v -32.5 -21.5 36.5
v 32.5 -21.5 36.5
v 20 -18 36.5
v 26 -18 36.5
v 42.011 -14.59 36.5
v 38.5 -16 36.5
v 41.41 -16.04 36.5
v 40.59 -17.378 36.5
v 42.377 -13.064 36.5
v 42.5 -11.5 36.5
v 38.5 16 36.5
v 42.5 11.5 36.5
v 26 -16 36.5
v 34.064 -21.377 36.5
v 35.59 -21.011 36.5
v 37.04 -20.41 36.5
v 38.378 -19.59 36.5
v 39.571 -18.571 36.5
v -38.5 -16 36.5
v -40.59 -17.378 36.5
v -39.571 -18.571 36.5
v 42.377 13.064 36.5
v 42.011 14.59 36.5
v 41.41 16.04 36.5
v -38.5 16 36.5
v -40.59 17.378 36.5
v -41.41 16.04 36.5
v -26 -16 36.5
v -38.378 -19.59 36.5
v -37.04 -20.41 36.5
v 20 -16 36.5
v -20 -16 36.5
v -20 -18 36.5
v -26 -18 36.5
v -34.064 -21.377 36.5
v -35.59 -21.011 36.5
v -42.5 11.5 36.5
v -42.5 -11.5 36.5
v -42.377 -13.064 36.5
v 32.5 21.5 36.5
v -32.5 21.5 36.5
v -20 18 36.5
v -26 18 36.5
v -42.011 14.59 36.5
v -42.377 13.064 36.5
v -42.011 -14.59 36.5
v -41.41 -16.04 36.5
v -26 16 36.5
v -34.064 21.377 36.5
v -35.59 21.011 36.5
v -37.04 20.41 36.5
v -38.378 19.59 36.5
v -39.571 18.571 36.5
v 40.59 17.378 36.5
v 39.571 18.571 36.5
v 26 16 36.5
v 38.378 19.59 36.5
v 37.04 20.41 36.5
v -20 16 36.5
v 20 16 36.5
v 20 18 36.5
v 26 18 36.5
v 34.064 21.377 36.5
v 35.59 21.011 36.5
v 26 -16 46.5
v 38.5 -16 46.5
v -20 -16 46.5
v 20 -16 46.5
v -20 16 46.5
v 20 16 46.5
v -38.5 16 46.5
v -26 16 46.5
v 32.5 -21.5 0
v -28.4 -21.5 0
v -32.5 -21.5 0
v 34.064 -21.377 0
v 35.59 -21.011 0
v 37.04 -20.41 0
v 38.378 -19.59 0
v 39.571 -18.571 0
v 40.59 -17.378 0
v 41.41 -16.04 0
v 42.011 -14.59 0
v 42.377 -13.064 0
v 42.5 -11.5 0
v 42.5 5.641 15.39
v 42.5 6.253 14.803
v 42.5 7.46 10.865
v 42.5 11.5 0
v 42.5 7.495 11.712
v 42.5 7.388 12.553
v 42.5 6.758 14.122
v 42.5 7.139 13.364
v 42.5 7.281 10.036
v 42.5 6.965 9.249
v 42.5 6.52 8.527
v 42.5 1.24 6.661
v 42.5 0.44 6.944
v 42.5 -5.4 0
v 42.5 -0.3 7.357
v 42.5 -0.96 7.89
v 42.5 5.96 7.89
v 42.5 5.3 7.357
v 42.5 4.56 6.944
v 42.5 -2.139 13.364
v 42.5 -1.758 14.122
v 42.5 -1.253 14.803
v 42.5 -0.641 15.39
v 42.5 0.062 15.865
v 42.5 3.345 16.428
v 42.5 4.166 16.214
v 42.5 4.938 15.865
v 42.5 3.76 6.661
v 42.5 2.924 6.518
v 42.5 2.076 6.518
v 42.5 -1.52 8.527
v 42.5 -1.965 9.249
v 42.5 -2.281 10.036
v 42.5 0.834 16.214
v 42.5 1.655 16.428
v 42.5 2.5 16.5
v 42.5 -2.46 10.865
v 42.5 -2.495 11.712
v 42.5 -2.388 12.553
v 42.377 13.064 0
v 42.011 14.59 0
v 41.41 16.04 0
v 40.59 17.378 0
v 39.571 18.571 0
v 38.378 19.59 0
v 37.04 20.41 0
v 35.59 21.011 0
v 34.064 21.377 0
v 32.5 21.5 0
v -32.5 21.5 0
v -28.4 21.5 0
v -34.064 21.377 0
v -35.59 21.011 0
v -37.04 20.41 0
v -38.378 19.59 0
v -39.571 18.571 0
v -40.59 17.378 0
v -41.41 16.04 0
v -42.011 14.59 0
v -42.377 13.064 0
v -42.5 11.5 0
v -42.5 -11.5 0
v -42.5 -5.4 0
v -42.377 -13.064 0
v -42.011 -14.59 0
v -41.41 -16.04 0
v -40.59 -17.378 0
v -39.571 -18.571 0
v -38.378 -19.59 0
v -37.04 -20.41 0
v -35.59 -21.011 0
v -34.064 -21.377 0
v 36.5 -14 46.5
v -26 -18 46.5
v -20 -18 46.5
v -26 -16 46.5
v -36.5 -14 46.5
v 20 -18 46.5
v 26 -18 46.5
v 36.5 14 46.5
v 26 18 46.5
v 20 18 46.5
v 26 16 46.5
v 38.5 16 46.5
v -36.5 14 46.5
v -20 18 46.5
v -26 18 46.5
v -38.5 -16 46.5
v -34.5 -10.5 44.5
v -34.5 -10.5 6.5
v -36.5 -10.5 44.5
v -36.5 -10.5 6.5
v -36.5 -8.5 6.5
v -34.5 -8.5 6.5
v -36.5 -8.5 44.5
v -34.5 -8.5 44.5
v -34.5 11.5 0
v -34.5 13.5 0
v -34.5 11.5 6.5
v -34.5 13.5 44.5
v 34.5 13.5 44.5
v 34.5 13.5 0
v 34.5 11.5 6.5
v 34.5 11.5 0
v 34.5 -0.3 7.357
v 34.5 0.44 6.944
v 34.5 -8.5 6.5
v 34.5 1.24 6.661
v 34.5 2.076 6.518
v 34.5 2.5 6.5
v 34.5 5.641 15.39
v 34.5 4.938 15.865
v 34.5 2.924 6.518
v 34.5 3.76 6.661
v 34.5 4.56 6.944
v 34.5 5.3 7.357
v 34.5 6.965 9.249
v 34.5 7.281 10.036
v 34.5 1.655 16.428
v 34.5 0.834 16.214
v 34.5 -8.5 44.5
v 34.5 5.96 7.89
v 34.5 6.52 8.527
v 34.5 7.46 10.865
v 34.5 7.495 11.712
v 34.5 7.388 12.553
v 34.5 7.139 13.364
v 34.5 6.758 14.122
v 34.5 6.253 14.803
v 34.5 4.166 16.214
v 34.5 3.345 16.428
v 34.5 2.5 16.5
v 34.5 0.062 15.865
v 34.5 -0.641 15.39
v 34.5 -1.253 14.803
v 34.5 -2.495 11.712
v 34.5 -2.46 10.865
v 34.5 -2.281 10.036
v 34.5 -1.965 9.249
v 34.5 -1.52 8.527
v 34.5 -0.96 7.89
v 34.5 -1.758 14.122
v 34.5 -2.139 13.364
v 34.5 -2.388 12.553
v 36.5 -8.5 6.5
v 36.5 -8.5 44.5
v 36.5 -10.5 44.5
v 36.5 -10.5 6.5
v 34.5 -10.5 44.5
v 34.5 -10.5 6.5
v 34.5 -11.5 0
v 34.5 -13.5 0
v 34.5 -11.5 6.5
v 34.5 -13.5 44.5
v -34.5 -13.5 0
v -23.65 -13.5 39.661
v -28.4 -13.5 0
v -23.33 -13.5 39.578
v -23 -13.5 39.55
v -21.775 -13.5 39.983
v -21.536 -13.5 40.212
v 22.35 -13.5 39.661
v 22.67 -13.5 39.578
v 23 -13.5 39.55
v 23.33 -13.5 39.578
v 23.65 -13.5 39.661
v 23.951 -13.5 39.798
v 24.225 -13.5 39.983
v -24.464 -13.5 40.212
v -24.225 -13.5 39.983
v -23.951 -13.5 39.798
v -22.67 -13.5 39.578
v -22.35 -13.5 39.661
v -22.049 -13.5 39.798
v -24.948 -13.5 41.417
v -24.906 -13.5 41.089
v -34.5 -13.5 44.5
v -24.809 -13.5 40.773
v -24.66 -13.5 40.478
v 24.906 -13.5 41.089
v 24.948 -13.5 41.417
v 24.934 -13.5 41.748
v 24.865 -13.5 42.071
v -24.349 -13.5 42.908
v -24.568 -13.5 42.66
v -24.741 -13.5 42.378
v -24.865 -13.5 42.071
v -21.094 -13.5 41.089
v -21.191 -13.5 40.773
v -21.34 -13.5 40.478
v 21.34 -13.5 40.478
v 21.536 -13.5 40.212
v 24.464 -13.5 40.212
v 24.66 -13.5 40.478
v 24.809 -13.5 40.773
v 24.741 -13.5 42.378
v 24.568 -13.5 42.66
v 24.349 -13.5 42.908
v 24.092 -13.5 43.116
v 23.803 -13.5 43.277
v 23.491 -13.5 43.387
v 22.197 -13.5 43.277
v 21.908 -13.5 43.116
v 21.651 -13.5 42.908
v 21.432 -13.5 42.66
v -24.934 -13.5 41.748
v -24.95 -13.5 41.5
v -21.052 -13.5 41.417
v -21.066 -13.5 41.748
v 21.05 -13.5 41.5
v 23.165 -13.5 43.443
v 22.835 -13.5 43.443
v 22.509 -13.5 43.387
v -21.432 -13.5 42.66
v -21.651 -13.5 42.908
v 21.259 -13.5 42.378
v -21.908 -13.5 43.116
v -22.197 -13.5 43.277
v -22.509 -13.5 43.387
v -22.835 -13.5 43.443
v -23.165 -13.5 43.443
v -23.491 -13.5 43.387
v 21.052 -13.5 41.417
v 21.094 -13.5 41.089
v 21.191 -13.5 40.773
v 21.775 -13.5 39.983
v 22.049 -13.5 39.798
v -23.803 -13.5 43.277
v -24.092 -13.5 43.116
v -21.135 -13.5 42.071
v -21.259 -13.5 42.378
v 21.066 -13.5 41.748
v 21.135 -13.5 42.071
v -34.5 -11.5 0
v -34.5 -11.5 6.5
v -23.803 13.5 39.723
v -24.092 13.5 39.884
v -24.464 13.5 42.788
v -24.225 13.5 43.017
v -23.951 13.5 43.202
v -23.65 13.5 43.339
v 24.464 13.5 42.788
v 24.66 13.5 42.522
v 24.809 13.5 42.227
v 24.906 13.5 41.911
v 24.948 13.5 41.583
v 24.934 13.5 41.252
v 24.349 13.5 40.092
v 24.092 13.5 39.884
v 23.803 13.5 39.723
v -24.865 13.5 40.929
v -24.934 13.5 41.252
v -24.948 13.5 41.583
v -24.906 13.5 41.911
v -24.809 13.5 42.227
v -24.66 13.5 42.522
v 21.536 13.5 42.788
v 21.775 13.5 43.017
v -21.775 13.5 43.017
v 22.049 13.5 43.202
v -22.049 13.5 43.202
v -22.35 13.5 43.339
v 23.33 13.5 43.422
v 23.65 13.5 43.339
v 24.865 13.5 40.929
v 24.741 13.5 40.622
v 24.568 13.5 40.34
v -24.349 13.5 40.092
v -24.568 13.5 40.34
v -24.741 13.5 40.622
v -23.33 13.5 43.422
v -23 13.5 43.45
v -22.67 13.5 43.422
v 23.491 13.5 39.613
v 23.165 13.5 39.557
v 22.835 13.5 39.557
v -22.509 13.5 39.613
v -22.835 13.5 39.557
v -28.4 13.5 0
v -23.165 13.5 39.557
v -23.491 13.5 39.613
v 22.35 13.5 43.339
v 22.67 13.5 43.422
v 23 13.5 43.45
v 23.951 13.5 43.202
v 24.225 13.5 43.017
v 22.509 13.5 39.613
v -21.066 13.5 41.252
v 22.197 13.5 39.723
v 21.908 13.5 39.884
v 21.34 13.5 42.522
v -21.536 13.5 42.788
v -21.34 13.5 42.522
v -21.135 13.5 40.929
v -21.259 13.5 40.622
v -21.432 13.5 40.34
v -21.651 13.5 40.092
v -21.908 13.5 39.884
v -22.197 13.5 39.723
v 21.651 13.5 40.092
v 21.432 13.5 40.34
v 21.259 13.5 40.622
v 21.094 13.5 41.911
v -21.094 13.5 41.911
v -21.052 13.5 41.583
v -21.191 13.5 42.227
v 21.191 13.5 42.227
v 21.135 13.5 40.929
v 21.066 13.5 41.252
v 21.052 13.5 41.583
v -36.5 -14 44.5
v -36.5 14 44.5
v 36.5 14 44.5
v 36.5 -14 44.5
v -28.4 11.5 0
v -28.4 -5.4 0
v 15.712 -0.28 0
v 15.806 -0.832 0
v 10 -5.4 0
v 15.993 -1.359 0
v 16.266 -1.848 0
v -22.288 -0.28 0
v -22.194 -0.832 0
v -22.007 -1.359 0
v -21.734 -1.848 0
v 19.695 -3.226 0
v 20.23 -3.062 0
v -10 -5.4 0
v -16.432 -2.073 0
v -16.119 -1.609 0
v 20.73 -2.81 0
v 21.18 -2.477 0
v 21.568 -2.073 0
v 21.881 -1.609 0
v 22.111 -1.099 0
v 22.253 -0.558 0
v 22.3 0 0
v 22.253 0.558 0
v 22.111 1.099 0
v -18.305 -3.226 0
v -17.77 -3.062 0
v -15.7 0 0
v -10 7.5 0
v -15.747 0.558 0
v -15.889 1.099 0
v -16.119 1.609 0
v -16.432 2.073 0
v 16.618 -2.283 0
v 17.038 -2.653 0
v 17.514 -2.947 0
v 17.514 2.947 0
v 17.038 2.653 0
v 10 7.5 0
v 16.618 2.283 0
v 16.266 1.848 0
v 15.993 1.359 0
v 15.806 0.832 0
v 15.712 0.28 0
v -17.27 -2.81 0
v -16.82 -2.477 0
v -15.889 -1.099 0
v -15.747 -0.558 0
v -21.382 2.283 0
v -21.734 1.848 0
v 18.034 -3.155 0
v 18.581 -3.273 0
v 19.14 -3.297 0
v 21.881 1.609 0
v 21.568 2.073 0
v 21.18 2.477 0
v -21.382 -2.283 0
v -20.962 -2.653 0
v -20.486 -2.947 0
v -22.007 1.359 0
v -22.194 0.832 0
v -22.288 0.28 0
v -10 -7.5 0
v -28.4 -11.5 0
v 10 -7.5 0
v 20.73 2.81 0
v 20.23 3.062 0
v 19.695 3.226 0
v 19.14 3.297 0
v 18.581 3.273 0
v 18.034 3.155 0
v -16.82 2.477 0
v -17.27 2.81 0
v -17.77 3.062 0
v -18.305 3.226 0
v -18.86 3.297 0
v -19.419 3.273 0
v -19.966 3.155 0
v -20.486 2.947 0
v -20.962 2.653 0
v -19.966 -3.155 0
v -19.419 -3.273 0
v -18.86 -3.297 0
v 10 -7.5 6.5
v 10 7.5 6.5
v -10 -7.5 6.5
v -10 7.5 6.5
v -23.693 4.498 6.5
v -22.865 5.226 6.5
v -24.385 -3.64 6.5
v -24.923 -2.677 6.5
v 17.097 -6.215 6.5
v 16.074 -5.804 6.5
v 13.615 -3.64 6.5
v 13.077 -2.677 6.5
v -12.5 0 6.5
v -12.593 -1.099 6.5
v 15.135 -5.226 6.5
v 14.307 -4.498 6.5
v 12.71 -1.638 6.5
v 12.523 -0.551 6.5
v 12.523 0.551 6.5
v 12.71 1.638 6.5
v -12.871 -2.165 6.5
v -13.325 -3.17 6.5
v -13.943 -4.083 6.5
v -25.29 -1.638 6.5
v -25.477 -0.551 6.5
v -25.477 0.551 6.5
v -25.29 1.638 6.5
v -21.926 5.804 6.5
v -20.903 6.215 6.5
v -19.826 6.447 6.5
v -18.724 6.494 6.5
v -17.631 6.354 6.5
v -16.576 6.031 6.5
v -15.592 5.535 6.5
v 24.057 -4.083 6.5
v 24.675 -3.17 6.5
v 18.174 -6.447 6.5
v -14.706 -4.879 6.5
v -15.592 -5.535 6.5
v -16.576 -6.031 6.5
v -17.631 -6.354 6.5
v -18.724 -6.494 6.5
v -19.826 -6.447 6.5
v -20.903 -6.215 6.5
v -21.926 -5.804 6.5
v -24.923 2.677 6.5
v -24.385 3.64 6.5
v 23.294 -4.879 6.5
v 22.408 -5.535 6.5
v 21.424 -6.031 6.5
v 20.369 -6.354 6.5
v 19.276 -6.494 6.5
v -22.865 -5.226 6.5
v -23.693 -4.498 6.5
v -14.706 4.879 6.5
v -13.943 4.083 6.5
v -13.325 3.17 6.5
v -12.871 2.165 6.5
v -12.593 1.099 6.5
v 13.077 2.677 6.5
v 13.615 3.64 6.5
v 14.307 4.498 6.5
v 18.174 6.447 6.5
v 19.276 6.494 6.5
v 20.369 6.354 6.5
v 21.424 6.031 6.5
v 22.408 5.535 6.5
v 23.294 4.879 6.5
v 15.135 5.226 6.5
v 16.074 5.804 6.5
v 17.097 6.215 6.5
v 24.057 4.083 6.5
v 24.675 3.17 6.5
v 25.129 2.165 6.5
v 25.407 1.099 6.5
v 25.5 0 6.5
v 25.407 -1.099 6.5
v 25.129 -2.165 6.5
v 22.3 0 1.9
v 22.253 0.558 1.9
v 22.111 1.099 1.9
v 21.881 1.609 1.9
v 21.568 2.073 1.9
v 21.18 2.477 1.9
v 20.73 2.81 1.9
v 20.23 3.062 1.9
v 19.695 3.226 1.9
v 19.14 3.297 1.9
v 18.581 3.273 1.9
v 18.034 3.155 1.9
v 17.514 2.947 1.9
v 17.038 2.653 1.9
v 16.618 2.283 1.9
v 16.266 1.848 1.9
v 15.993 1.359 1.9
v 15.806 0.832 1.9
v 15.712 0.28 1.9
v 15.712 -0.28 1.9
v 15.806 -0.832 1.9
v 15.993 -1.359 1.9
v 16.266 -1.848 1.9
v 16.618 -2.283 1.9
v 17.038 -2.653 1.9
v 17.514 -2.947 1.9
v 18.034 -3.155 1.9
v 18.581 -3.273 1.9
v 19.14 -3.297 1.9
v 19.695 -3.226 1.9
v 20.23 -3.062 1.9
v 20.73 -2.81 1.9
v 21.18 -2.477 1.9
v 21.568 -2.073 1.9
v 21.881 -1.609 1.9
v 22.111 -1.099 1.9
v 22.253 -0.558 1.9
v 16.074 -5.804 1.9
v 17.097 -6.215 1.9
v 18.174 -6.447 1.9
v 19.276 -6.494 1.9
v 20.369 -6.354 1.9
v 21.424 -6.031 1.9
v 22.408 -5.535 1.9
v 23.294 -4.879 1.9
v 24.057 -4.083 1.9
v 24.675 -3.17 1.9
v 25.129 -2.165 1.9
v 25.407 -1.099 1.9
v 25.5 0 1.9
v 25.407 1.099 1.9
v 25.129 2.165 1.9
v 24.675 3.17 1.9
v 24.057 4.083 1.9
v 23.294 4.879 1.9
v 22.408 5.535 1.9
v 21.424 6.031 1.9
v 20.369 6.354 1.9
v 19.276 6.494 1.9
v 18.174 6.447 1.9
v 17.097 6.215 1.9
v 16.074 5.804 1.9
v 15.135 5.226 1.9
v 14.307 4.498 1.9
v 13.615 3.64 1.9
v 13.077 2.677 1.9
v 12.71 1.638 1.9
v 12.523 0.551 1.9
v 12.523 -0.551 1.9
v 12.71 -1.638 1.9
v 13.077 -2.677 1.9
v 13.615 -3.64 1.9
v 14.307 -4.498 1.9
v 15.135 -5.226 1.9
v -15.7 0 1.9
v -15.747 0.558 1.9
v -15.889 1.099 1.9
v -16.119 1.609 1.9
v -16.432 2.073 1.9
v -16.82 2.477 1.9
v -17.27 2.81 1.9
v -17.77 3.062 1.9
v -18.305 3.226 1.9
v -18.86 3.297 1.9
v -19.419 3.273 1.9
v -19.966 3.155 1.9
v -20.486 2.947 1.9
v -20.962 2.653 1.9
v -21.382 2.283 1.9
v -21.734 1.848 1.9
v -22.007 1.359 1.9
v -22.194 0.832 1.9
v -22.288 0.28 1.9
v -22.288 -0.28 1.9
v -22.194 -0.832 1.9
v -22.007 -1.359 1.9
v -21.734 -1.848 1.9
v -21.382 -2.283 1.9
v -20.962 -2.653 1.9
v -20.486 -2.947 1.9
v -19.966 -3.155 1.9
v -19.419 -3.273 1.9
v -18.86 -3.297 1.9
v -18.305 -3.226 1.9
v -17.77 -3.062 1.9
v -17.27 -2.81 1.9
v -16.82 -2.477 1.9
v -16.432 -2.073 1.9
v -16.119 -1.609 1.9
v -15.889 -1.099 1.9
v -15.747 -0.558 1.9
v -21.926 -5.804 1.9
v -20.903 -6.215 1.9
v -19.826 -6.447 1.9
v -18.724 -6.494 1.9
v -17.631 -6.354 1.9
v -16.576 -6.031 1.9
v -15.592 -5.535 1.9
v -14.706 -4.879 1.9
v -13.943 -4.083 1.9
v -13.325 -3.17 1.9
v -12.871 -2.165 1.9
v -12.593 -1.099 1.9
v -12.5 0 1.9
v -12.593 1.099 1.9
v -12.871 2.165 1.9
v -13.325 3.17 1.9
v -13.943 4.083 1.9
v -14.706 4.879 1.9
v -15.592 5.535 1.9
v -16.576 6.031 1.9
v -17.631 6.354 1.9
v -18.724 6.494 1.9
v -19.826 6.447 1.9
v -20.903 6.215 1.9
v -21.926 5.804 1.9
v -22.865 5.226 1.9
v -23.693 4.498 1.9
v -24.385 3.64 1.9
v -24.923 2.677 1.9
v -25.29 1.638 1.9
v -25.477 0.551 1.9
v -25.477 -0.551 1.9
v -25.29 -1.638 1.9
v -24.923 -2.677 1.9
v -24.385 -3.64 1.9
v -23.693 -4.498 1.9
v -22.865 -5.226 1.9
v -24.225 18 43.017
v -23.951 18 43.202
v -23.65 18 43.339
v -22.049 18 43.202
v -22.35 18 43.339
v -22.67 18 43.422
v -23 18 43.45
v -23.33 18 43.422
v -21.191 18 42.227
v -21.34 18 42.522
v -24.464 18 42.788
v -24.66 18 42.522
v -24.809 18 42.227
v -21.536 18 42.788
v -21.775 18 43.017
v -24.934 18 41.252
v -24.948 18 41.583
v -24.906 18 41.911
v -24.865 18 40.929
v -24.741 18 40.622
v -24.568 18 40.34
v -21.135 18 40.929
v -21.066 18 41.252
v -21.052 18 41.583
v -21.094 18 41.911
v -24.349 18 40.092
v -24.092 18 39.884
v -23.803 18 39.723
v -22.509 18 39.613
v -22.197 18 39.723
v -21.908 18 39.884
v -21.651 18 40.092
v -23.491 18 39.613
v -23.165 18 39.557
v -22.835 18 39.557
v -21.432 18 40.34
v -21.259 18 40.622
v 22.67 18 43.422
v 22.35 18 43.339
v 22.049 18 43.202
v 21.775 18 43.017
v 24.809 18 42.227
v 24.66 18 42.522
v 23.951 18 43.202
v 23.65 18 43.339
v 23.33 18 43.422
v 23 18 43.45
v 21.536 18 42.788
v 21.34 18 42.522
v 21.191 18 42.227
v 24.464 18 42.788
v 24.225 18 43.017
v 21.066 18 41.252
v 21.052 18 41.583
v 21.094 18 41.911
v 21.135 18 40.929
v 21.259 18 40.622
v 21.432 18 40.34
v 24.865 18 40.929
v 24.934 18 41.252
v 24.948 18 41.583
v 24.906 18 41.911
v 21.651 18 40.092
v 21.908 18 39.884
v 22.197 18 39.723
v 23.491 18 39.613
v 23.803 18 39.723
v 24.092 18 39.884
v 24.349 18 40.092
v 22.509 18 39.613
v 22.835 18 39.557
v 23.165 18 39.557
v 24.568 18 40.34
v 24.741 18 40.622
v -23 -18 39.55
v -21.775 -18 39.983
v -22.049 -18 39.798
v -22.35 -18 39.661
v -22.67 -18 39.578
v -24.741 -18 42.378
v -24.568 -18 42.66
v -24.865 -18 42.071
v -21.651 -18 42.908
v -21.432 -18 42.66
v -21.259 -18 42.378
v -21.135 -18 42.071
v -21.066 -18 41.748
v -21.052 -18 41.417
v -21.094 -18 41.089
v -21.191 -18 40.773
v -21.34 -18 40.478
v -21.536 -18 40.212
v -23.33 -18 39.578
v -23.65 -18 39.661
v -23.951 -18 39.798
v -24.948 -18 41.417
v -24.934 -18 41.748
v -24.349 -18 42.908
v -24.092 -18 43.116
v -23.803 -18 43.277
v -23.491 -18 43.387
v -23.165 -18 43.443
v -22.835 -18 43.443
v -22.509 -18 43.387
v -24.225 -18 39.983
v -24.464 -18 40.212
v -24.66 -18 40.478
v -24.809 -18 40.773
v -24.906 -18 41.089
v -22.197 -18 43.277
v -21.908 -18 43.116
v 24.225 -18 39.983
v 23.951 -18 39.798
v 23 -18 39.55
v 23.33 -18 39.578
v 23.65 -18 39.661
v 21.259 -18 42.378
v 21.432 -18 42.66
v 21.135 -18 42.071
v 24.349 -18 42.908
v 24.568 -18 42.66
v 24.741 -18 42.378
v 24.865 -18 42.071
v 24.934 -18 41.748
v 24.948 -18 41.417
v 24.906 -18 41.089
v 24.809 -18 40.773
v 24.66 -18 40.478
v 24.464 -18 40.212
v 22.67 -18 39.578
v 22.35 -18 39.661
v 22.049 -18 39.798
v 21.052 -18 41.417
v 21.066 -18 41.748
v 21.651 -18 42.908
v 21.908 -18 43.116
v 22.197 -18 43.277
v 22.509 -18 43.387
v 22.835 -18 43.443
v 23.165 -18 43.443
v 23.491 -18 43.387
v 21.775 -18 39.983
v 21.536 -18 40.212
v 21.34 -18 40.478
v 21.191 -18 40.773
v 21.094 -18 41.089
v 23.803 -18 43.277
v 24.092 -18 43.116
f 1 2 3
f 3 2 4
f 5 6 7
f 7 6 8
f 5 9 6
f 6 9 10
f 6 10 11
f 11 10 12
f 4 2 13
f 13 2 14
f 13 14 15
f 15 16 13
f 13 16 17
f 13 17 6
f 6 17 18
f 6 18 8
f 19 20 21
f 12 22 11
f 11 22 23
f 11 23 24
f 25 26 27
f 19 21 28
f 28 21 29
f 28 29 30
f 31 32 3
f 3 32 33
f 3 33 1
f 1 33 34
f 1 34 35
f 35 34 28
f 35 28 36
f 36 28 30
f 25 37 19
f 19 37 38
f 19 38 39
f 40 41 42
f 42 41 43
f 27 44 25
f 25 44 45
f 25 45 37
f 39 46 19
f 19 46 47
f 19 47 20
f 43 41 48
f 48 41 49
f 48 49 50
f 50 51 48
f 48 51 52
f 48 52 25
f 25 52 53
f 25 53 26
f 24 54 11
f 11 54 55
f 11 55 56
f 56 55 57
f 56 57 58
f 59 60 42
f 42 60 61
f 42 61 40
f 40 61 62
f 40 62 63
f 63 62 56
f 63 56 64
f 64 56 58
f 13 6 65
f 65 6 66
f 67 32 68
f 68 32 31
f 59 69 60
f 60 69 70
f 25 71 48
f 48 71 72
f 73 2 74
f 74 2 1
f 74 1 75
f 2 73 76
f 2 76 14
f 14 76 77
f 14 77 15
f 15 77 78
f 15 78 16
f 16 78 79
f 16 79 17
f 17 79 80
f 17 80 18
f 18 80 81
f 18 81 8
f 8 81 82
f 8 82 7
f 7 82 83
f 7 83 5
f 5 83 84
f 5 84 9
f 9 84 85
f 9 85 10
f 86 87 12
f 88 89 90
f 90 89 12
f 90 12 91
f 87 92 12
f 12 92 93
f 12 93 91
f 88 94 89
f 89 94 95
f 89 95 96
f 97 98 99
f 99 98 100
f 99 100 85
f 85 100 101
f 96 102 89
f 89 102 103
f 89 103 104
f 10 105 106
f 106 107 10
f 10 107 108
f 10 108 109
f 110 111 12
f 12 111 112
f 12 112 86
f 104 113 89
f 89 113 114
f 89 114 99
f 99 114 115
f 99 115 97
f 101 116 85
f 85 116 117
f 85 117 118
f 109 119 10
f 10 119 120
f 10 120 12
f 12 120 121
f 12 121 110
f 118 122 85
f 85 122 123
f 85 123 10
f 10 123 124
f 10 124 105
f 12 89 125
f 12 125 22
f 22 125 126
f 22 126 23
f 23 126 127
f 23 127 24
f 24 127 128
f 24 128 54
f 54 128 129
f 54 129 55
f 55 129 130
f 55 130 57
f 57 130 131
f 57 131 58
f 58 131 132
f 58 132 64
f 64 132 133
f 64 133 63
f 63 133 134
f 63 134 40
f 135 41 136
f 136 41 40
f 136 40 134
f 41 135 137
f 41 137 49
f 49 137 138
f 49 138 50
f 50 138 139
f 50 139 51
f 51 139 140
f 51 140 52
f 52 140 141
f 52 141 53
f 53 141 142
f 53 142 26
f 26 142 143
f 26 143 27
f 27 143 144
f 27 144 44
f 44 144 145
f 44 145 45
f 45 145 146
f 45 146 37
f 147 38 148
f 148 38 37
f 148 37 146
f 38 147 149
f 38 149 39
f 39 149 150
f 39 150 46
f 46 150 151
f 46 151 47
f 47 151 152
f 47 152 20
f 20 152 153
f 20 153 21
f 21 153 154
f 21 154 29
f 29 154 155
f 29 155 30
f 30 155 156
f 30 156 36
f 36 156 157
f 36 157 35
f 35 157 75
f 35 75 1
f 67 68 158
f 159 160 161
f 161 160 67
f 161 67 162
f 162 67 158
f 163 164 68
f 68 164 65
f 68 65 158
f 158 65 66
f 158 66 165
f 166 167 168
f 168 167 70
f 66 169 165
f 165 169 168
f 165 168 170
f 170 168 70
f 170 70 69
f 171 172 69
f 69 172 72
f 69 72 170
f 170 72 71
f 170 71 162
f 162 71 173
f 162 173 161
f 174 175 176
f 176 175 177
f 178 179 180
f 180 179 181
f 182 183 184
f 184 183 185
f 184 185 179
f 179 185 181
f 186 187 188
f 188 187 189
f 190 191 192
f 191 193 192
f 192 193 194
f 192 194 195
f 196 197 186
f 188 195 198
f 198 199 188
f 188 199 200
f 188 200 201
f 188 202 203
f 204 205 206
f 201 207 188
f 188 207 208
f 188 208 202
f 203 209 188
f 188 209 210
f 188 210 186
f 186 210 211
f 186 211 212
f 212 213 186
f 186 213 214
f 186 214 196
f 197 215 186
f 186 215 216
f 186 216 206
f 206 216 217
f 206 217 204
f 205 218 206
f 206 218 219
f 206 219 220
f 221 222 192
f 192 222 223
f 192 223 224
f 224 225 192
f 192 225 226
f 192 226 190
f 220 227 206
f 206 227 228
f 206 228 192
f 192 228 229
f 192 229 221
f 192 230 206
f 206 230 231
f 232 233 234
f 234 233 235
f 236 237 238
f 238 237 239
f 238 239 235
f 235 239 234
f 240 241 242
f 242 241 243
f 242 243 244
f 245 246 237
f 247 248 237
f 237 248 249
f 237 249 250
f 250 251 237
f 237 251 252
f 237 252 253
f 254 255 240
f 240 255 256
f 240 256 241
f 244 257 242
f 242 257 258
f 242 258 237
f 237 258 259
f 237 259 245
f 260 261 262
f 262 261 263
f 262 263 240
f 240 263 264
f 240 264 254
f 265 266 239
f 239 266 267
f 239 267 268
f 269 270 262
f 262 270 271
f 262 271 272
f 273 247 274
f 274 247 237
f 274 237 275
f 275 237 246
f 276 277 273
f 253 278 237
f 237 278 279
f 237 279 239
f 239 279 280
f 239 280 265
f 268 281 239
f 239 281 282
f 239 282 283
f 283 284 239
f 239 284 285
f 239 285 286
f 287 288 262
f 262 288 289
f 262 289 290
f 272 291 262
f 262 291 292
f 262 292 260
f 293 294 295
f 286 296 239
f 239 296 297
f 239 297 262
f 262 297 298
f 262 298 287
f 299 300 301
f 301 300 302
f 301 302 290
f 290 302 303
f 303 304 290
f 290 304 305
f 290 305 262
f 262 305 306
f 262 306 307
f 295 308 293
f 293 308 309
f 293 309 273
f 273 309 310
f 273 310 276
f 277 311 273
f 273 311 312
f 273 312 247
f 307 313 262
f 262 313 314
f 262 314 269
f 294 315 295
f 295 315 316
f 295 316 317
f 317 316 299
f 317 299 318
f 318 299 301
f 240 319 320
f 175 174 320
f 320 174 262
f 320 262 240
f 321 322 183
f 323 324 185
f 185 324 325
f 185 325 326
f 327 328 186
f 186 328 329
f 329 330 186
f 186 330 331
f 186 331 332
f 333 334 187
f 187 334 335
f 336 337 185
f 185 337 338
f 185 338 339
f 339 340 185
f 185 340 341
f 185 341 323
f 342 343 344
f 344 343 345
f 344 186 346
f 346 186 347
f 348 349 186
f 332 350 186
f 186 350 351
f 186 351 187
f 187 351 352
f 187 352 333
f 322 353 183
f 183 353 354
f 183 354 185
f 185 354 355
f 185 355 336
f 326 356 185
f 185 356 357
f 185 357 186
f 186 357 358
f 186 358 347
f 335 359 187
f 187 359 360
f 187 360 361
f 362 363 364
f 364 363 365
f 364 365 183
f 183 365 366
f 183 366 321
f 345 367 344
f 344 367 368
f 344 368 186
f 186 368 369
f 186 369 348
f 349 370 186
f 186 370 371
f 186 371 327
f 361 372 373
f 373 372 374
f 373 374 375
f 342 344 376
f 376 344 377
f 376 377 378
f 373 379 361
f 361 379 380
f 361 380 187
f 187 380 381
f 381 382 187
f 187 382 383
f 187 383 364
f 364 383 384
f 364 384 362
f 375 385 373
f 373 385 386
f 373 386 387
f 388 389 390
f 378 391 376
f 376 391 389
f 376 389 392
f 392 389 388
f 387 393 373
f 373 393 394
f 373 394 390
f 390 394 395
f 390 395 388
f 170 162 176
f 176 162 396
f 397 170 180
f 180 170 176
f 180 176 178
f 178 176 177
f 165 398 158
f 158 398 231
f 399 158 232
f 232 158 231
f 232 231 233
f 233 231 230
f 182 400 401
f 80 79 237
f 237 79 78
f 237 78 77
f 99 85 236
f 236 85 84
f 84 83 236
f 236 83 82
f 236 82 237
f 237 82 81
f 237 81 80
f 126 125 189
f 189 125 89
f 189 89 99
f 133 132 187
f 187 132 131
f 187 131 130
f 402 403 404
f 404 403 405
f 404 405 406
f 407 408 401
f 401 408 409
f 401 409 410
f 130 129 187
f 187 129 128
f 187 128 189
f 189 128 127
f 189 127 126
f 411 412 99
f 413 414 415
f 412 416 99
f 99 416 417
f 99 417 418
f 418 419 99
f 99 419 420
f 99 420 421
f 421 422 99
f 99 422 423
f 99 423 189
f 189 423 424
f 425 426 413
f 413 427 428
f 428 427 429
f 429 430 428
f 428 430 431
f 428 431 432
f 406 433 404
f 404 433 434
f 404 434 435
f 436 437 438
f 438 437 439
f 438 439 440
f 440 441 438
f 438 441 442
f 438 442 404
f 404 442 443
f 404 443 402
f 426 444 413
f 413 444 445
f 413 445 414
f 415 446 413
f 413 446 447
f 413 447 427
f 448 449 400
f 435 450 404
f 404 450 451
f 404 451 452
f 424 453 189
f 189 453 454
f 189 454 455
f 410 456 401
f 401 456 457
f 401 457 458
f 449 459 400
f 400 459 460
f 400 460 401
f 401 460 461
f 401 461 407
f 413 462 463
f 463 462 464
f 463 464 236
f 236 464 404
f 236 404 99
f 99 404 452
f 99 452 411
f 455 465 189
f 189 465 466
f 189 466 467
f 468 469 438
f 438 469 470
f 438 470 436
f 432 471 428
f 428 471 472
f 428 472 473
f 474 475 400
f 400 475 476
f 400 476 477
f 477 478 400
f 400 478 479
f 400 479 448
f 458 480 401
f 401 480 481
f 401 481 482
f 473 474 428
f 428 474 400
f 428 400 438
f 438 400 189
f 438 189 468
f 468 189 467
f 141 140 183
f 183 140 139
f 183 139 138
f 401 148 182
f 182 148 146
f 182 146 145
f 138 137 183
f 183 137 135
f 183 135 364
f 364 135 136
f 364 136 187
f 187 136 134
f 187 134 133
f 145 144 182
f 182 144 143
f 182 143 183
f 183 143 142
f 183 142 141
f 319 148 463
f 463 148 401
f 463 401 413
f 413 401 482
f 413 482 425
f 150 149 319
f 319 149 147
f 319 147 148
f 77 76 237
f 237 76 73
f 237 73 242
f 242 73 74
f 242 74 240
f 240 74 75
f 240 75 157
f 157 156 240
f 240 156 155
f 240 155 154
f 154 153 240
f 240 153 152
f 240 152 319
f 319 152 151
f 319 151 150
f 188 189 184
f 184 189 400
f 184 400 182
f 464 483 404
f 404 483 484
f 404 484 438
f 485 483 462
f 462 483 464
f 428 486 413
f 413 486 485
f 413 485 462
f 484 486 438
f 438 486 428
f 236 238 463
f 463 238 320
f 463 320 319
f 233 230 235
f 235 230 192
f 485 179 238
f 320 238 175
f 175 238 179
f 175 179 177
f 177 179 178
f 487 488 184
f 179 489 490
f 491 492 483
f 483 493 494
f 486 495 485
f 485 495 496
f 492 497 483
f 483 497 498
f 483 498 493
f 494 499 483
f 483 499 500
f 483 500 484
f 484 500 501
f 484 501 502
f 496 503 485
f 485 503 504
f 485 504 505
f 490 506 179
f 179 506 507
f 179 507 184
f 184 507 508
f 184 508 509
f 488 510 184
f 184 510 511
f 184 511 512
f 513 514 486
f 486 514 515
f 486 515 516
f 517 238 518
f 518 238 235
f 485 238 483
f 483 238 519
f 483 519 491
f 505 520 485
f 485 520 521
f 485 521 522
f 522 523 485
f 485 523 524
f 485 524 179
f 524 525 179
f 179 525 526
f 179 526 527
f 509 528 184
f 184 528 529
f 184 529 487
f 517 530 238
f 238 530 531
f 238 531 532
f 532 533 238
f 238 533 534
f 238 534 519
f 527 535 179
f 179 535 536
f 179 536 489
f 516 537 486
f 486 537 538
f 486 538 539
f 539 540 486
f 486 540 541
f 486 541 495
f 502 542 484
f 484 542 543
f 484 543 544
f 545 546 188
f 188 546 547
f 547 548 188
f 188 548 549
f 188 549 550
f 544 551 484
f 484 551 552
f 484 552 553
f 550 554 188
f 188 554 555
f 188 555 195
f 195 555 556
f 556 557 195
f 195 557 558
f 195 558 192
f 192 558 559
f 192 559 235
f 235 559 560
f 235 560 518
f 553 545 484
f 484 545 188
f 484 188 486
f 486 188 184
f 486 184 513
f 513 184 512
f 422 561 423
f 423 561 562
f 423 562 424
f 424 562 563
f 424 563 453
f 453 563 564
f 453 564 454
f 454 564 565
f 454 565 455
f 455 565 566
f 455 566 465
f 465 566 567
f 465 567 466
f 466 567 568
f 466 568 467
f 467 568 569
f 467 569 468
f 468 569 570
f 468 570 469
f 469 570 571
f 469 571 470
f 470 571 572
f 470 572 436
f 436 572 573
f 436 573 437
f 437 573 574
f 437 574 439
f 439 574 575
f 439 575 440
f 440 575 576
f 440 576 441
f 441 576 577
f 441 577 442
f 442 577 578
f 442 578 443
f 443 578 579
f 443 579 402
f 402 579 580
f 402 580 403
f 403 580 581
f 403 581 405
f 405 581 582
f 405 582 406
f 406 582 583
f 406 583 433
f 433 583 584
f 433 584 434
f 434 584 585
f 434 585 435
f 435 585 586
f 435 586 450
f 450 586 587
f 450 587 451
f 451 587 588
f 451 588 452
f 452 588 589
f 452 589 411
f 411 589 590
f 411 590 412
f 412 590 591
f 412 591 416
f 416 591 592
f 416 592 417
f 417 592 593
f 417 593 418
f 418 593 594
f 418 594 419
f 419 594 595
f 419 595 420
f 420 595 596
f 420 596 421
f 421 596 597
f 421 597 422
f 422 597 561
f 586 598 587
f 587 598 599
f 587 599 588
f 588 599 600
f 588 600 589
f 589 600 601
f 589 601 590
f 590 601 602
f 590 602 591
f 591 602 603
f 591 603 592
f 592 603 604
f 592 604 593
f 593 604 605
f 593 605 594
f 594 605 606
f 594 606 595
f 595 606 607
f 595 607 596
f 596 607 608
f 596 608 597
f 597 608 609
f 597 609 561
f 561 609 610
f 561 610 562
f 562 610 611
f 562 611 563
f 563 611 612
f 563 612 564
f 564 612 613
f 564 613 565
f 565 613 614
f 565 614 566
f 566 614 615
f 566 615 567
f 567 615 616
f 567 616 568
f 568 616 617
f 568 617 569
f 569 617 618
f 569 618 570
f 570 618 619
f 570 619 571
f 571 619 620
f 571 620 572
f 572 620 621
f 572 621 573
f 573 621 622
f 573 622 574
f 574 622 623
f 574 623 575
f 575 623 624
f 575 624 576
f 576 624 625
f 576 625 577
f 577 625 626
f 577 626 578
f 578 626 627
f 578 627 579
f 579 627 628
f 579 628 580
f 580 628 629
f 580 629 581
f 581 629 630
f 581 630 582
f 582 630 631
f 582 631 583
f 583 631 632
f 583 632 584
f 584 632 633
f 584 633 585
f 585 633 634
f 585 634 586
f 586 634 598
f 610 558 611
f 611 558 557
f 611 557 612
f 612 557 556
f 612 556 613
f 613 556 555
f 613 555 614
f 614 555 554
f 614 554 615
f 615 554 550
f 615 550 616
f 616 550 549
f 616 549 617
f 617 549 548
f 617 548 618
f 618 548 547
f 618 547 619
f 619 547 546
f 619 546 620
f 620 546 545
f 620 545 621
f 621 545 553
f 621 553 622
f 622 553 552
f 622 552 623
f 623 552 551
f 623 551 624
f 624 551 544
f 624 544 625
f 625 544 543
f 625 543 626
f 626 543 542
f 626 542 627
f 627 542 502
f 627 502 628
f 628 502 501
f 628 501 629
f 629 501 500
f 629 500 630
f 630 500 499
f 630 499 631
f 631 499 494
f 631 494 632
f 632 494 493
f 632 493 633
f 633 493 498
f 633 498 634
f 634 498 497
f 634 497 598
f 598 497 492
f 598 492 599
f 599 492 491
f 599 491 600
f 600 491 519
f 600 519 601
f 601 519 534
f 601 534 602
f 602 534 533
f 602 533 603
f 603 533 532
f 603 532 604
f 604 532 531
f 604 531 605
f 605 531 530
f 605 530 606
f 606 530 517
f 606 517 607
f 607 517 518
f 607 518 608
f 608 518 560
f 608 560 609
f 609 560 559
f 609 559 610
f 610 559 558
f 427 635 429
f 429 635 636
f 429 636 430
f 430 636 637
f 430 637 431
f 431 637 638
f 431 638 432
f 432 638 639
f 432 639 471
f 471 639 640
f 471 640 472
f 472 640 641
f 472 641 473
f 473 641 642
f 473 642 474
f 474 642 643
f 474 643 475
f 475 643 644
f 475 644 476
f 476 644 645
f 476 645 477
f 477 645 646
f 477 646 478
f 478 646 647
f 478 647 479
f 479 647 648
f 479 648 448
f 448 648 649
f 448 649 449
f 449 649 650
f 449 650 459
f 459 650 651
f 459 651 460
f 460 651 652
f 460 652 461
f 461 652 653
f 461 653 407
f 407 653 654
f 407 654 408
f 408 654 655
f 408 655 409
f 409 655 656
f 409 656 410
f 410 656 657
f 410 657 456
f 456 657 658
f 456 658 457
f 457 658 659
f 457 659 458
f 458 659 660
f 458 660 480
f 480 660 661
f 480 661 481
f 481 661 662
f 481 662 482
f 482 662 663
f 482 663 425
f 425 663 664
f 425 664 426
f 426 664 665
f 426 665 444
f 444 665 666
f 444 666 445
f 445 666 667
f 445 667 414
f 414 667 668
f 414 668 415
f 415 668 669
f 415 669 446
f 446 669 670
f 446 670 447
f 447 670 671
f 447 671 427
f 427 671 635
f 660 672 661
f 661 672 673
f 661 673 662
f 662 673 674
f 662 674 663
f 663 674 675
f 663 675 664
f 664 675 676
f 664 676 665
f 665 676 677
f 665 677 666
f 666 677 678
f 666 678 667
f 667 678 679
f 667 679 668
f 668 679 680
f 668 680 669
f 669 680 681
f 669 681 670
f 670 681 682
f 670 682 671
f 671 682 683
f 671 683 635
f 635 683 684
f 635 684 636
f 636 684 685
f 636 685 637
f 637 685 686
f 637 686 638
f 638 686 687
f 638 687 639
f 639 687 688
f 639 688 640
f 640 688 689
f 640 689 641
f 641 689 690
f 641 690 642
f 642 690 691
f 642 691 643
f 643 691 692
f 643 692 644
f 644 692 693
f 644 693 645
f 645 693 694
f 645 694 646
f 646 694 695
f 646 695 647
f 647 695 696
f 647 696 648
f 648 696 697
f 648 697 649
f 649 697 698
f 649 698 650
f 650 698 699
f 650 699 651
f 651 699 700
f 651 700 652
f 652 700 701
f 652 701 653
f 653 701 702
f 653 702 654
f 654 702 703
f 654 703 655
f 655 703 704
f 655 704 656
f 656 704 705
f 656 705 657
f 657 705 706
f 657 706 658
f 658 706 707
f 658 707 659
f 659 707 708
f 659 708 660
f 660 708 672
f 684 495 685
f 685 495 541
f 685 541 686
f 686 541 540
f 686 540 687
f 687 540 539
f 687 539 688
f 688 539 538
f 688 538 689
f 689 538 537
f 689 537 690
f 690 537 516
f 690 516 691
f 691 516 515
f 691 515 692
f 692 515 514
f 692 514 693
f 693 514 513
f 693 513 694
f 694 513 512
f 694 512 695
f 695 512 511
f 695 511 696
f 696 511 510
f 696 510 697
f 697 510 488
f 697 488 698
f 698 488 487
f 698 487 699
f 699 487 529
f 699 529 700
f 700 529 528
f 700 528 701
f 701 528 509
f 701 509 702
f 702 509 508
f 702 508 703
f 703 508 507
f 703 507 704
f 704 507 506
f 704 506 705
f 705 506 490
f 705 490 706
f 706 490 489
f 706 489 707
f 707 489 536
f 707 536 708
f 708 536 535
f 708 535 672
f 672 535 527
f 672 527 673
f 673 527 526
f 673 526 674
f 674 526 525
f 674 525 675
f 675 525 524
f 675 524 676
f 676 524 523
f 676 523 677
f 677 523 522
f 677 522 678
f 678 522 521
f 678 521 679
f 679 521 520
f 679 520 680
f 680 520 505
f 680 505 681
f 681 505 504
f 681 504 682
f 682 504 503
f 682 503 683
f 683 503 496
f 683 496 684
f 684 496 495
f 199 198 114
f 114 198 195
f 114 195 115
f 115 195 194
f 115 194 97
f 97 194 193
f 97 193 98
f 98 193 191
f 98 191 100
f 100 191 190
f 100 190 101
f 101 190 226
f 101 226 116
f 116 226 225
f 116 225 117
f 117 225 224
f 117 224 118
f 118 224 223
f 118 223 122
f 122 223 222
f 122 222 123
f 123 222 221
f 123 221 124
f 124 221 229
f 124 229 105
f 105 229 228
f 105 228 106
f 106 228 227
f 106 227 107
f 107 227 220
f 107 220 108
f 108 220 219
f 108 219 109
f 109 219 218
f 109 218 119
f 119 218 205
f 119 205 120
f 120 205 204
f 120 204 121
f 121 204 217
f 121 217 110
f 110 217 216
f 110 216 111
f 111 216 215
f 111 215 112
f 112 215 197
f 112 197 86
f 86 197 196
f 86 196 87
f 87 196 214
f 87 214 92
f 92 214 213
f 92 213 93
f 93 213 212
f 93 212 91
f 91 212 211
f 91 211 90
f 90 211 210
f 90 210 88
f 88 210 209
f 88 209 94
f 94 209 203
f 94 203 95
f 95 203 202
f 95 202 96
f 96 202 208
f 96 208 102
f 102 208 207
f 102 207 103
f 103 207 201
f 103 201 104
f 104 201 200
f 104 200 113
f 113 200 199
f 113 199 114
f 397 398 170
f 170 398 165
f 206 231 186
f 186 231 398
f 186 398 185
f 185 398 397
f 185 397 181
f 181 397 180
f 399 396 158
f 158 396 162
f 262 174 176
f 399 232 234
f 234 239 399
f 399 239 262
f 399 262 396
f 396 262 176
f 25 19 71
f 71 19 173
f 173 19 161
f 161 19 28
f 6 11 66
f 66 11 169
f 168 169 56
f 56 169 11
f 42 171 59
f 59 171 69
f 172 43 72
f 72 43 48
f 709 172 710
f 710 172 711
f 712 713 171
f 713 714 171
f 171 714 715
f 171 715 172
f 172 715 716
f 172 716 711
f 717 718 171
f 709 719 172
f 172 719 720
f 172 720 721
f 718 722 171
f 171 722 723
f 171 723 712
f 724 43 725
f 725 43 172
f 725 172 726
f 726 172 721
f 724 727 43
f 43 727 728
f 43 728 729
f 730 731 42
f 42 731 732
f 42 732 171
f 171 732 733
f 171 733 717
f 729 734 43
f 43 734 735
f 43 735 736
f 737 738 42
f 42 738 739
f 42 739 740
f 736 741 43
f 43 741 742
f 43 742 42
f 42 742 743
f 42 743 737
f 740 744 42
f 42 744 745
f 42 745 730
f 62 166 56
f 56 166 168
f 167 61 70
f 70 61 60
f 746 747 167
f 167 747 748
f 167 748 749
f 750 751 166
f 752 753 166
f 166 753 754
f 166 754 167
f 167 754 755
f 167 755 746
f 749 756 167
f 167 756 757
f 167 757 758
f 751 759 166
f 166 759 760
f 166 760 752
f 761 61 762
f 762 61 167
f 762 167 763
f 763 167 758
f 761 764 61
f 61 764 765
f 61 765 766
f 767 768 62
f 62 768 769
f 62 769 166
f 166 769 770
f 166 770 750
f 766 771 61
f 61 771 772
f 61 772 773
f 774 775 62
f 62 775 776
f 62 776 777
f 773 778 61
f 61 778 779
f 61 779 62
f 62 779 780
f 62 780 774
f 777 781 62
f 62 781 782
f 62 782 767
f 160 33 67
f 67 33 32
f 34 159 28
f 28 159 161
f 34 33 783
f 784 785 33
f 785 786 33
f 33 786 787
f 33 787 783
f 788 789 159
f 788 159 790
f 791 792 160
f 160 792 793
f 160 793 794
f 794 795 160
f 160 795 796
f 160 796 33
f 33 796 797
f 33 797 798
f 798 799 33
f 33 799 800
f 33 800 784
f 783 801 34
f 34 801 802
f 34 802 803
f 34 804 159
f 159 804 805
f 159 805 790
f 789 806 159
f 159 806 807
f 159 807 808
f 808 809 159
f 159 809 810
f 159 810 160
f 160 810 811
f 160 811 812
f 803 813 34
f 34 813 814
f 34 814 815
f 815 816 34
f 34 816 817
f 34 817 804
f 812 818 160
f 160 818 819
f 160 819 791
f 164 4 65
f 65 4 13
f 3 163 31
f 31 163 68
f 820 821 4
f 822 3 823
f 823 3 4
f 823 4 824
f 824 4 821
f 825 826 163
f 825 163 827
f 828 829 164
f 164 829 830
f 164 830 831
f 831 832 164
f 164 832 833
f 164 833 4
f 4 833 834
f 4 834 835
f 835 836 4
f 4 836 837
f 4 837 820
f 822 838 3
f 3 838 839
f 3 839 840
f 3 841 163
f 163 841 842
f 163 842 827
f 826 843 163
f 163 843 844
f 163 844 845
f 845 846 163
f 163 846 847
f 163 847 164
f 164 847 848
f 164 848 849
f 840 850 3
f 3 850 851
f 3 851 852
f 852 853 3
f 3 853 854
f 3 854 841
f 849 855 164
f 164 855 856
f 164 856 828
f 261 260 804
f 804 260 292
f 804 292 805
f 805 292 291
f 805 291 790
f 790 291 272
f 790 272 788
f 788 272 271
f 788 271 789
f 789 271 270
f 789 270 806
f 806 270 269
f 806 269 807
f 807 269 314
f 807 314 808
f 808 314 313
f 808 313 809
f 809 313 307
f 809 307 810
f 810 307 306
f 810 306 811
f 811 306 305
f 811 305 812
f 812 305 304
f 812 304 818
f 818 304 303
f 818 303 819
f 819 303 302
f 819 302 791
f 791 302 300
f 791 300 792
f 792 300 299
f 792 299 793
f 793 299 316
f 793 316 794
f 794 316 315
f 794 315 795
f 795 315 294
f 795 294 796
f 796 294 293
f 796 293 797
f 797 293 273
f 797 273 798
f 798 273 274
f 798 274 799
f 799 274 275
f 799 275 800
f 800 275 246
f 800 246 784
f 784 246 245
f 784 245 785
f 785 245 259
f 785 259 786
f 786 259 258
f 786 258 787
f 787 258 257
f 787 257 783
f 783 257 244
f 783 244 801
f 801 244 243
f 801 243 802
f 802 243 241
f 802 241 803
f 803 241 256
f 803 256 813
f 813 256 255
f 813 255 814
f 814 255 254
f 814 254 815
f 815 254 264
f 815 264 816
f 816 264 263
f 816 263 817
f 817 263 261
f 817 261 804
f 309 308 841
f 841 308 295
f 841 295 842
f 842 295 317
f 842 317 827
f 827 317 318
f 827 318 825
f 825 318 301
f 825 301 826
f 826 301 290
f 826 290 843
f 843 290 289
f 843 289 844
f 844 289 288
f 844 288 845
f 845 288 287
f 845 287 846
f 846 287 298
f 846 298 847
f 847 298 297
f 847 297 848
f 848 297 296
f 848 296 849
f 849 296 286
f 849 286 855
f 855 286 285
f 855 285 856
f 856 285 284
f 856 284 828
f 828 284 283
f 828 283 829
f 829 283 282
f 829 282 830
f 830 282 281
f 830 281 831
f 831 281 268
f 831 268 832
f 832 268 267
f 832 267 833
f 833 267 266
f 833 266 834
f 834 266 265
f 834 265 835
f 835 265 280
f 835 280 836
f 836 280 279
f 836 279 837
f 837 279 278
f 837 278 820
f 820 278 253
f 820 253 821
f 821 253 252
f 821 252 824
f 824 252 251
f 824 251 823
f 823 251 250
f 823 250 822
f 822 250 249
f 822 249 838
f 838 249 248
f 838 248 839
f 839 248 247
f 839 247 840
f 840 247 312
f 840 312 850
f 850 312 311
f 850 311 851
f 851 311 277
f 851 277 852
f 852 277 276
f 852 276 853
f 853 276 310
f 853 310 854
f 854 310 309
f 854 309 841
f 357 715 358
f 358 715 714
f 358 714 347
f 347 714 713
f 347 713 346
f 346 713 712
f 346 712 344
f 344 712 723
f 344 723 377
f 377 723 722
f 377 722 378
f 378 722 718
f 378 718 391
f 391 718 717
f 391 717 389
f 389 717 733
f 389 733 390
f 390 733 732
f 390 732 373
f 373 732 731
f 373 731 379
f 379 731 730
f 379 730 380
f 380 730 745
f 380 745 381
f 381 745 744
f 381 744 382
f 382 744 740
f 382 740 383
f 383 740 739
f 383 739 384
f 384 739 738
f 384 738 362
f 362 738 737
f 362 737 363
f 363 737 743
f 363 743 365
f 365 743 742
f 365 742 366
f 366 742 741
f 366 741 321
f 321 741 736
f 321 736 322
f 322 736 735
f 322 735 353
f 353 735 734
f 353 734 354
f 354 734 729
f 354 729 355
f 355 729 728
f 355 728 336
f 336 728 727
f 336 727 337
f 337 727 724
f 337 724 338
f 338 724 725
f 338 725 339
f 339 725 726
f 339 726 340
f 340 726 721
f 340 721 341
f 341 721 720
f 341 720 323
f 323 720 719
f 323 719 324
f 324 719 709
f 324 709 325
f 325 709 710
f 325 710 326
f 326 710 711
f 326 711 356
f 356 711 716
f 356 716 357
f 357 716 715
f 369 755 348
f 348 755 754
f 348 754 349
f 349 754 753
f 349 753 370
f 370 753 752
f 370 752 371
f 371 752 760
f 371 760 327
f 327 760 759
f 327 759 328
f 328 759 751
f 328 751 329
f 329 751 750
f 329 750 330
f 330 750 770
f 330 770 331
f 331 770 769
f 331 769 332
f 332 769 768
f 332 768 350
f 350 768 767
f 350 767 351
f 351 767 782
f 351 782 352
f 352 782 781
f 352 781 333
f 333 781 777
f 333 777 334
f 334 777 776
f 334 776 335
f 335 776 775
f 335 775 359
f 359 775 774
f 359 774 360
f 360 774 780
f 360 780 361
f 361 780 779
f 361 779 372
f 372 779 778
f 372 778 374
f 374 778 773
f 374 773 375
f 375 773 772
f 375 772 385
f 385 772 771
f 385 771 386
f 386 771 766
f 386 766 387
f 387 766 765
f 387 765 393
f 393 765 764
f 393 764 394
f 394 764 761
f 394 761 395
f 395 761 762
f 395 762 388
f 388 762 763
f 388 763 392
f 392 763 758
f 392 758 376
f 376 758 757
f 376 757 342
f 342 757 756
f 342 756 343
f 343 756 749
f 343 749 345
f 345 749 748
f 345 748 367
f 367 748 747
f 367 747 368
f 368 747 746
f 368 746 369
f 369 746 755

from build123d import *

# Parameters (mm, degrees)
P_IDAT_VYSUNUT_M1_DEPTH                           = 46.5
P_IDAT_VYSUNUT_M2_DEPTH                           = 6.5
V_LCOV_ZAHLOUBEN_PRO_M6_ROUBY_S_V_LCO_D           = 6.6
V_LCOV_ZAHLOUBEN_PRO_M6_ROUBY_S_V_LCO_CBORE_D     = 13
V_LCOV_ZAHLOUBEN_PRO_M6_ROUBY_S_V_LCO_CBORE_DEPTH = 4.6
SKICA6_R                                          = 5
ODEBRAT_VYSUNUT_M1_DEPTH                          = 93.485133941
SKICA7_W                                          = 73
SKICA7_H                                          = 28
ODEBRAT_VYSUNUT_M2_DEPTH                          = 2
ODEBRAT_START                                     = -10
SKICA8_W                                          = 97
SKICA8_H                                          = 52
SKICA8_W_2                                        = 77
SKICA8_H_2                                        = 32
ODEBRAT_VYSUNUT_M5_DEPTH                          = 10
SKICA9_W                                          = 6
SKICA9_H                                          = 5
P_IDAT_VYSUNUT_M3_DEPTH                           = 2
D_RY_PRO_KOL_K_VELIKOST_MM1_REACH                 = 76.356
D_RY_PRO_KOL_K_VELIKOST_MM1_BORE_R                = 1.95


with BuildPart() as part:
    # Skica1 → Přidat vysunutím1 (new body)
    with BuildSketch(Plane.XY):
        with BuildLine():
            Line((-32.5, -21.5), (0, -21.5))
            Line((0, -21.5), (32.5, -21.5))
            ThreePointArc((32.5, -21.5), (39.571067812, -18.571067812), (42.5, -11.5))
            Line((42.5, -11.5), (42.5, 11.5))
            ThreePointArc((42.5, 11.5), (39.571067812, 18.571067812), (32.5, 21.5))
            Line((32.5, 21.5), (-32.5, 21.5))
            ThreePointArc((-32.5, 21.5), (-39.571067812, 18.571067812), (-42.5, 11.5))
            Line((-42.5, 11.5), (-42.5, -11.5))
            ThreePointArc((-42.5, -11.5), (-39.571067812, -18.571067812), (-32.5, -21.5))
        make_face()
        Polygon((-34.5, -8.5), (-34.5, 13.5), (34.5, 13.5), (34.5, -8.5), (36.5, -8.5), (36.5, -10.5), (34.5, -10.5), (34.5, -13.5), (0, -13.5), (-34.5, -13.5), (-34.5, -10.5), (-36.5, -10.5), (-36.5, -8.5), align=None, mode=Mode.SUBTRACT)
    extrude(amount=P_IDAT_VYSUNUT_M1_DEPTH)

    # Skica2 → Přidat vysunutím2 (add)
    with BuildSketch(Plane(origin=(0, 0, 0), x_dir=(-1, 0, 0), z_dir=(0, 0, -1))):
        Polygon((34.5, 11.5), (-34.5, 11.5), (-34.5, -8.5), (-36.5, -8.5), (-36.5, -10.5), (-34.5, -10.5), (-34.5, -11.5), (34.5, -11.5), (34.5, -10.5), (36.5, -10.5), (36.5, -8.5), (34.5, -8.5), align=None)
        Polygon((-10, 7.5), (10, 7.5), (10, -7.5), (-10, -7.5), (-10, 0), align=None, mode=Mode.SUBTRACT)
    extrude(amount=-P_IDAT_VYSUNUT_M2_DEPTH)

    # Válcové zahloubení pro M6 šrouby s válcovou hlavou zaoblenou1 (through all)
    with Locations(Plane.XY.offset(6.5)):
        with Locations((-19, 0), (19, 0)):
            CounterBoreHole(V_LCOV_ZAHLOUBEN_PRO_M6_ROUBY_S_V_LCO_D / 2, V_LCOV_ZAHLOUBEN_PRO_M6_ROUBY_S_V_LCO_CBORE_D / 2, V_LCOV_ZAHLOUBEN_PRO_M6_ROUBY_S_V_LCO_CBORE_DEPTH)

    # Skica6 → Odebrat vysunutím1 (cut, through all)
    with BuildSketch(Plane.ZY.offset(-34.5)):
        with Locations((11.5, 2.5)):
            Circle(SKICA6_R)
    extrude(amount=-ODEBRAT_VYSUNUT_M1_DEPTH, mode=Mode.SUBTRACT)

    # Skica7 → Odebrat vysunutím2 (cut)
    with BuildSketch(Plane.XY.offset(46.5)):
        Rectangle(SKICA7_W, SKICA7_H)
    extrude(amount=-ODEBRAT_VYSUNUT_M2_DEPTH, mode=Mode.SUBTRACT)

    # Skica8 → Odebrat vysunutím5 (cut)
    # profile 1 of 2: a face of its own
    with BuildSketch(Plane.XY.offset(46.5).offset(ODEBRAT_START)):
        Rectangle(SKICA8_W, SKICA8_H)
        with BuildLine():
            Line((-32.5, -21.5), (32.5, -21.5))
            ThreePointArc((32.5, -21.5), (39.571067812, -18.571067812), (42.5, -11.5))
            Line((42.5, -11.5), (42.5, 11.5))
            ThreePointArc((42.5, 11.5), (39.571067812, 18.571067812), (32.5, 21.5))
            Line((32.5, 21.5), (-32.5, 21.5))
            ThreePointArc((-32.5, 21.5), (-39.571067812, 18.571067812), (-42.5, 11.5))
            Line((-42.5, 11.5), (-42.5, -11.5))
            ThreePointArc((-42.5, -11.5), (-39.571067812, -18.571067812), (-32.5, -21.5))
        make_face(mode=Mode.SUBTRACT)
    # profile 2 of 2: a face of its own
    with BuildSketch(Plane.XY.offset(46.5).offset(ODEBRAT_START)):
        with BuildLine():
            ThreePointArc((-42.5, -11.5), (-39.571067812, -18.571067812), (-32.5, -21.5))
            Line((-32.5, -21.5), (32.5, -21.5))
            ThreePointArc((32.5, -21.5), (39.571067812, -18.571067812), (42.5, -11.5))
            Line((42.5, -11.5), (42.5, 11.5))
            ThreePointArc((42.5, 11.5), (39.571067812, 18.571067812), (32.5, 21.5))
            Line((32.5, 21.5), (-32.5, 21.5))
            ThreePointArc((-32.5, 21.5), (-39.571067812, 18.571067812), (-42.5, 11.5))
            Line((-42.5, 11.5), (-42.5, -11.5))
        make_face()
        Rectangle(SKICA8_W_2, SKICA8_H_2, mode=Mode.SUBTRACT)
    extrude(amount=ODEBRAT_VYSUNUT_M5_DEPTH, mode=Mode.SUBTRACT)

    # Skica9 → Přidat vysunutím3 (add)
    with BuildSketch(Plane(origin=(0, 16, 0), x_dir=(1, 0, 0), z_dir=(0, 1, 0))):
        with Locations((-23, -44)):
            Rectangle(SKICA9_W, SKICA9_H)
        with Locations((-23, -39)):
            Rectangle(SKICA9_W, SKICA9_H)
        with Locations((23, -44)):
            Rectangle(SKICA9_W, SKICA9_H)
        with Locations((23, -39)):
            Rectangle(SKICA9_W, SKICA9_H)
    p_idat_vysunut_m3 = extrude(amount=P_IDAT_VYSUNUT_M3_DEPTH)

    # Zrcadlit1: Přidat vysunutím3 across plane
    add(p_idat_vysunut_m3.mirror(Plane(origin=(0, 0, 0), x_dir=(0, 0, 1), z_dir=(0, -1, 0))))

    # Díry pro kolík, velikost mm1 bore → Díry pro kolík, velikost mm1 (cut, up to next)
    with BuildSketch(Plane(origin=(0, -18, 0), x_dir=(-1, 0, 0), z_dir=(0, -1, 0)), mode=Mode.PRIVATE) as d_ry_pro_kol_k_velikost_mm1_sk1:
        with Locations((-23, -41.5)):
            Circle(D_RY_PRO_KOL_K_VELIKOST_MM1_BORE_R)
    d_ry_pro_kol_k_velikost_mm1_tool1 = extrude(d_ry_pro_kol_k_velikost_mm1_sk1.sketch, amount=-D_RY_PRO_KOL_K_VELIKOST_MM1_REACH, mode=Mode.PRIVATE) & part.part
    # Díry pro kolík, velikost mm1 bore → Díry pro kolík, velikost mm1 (cut, up to next)
    with BuildSketch(Plane(origin=(0, -18, 0), x_dir=(-1, 0, 0), z_dir=(0, -1, 0)), mode=Mode.PRIVATE) as d_ry_pro_kol_k_velikost_mm1_sk2:
        with Locations((23, -41.5)):
            Circle(D_RY_PRO_KOL_K_VELIKOST_MM1_BORE_R)
    d_ry_pro_kol_k_velikost_mm1_tool2 = extrude(d_ry_pro_kol_k_velikost_mm1_sk2.sketch, amount=-D_RY_PRO_KOL_K_VELIKOST_MM1_REACH, mode=Mode.PRIVATE) & part.part
    d_ry_pro_kol_k_velikost_mm1_1 = d_ry_pro_kol_k_velikost_mm1_tool1.solids().sort_by_distance((23, -18, 41.5))[0]
    add(d_ry_pro_kol_k_velikost_mm1_1, mode=Mode.SUBTRACT)
    d_ry_pro_kol_k_velikost_mm1_2 = d_ry_pro_kol_k_velikost_mm1_tool2.solids().sort_by_distance((-23, -18, 41.5))[0]
    add(d_ry_pro_kol_k_velikost_mm1_2, mode=Mode.SUBTRACT)
    d_ry_pro_kol_k_velikost_mm1 = d_ry_pro_kol_k_velikost_mm1_1 + d_ry_pro_kol_k_velikost_mm1_2  # Díry pro kolík, velikost mm1 as one shape, for the pattern or mirror that repeats it

    # Zrcadlit2: Díry pro kolík, velikost mm1 across plane
    add(d_ry_pro_kol_k_velikost_mm1.mirror(Plane(origin=(0, 0, 0), x_dir=(0, 0, 1), z_dir=(0, -1, 0))), mode=Mode.SUBTRACT)


solid = part.part
